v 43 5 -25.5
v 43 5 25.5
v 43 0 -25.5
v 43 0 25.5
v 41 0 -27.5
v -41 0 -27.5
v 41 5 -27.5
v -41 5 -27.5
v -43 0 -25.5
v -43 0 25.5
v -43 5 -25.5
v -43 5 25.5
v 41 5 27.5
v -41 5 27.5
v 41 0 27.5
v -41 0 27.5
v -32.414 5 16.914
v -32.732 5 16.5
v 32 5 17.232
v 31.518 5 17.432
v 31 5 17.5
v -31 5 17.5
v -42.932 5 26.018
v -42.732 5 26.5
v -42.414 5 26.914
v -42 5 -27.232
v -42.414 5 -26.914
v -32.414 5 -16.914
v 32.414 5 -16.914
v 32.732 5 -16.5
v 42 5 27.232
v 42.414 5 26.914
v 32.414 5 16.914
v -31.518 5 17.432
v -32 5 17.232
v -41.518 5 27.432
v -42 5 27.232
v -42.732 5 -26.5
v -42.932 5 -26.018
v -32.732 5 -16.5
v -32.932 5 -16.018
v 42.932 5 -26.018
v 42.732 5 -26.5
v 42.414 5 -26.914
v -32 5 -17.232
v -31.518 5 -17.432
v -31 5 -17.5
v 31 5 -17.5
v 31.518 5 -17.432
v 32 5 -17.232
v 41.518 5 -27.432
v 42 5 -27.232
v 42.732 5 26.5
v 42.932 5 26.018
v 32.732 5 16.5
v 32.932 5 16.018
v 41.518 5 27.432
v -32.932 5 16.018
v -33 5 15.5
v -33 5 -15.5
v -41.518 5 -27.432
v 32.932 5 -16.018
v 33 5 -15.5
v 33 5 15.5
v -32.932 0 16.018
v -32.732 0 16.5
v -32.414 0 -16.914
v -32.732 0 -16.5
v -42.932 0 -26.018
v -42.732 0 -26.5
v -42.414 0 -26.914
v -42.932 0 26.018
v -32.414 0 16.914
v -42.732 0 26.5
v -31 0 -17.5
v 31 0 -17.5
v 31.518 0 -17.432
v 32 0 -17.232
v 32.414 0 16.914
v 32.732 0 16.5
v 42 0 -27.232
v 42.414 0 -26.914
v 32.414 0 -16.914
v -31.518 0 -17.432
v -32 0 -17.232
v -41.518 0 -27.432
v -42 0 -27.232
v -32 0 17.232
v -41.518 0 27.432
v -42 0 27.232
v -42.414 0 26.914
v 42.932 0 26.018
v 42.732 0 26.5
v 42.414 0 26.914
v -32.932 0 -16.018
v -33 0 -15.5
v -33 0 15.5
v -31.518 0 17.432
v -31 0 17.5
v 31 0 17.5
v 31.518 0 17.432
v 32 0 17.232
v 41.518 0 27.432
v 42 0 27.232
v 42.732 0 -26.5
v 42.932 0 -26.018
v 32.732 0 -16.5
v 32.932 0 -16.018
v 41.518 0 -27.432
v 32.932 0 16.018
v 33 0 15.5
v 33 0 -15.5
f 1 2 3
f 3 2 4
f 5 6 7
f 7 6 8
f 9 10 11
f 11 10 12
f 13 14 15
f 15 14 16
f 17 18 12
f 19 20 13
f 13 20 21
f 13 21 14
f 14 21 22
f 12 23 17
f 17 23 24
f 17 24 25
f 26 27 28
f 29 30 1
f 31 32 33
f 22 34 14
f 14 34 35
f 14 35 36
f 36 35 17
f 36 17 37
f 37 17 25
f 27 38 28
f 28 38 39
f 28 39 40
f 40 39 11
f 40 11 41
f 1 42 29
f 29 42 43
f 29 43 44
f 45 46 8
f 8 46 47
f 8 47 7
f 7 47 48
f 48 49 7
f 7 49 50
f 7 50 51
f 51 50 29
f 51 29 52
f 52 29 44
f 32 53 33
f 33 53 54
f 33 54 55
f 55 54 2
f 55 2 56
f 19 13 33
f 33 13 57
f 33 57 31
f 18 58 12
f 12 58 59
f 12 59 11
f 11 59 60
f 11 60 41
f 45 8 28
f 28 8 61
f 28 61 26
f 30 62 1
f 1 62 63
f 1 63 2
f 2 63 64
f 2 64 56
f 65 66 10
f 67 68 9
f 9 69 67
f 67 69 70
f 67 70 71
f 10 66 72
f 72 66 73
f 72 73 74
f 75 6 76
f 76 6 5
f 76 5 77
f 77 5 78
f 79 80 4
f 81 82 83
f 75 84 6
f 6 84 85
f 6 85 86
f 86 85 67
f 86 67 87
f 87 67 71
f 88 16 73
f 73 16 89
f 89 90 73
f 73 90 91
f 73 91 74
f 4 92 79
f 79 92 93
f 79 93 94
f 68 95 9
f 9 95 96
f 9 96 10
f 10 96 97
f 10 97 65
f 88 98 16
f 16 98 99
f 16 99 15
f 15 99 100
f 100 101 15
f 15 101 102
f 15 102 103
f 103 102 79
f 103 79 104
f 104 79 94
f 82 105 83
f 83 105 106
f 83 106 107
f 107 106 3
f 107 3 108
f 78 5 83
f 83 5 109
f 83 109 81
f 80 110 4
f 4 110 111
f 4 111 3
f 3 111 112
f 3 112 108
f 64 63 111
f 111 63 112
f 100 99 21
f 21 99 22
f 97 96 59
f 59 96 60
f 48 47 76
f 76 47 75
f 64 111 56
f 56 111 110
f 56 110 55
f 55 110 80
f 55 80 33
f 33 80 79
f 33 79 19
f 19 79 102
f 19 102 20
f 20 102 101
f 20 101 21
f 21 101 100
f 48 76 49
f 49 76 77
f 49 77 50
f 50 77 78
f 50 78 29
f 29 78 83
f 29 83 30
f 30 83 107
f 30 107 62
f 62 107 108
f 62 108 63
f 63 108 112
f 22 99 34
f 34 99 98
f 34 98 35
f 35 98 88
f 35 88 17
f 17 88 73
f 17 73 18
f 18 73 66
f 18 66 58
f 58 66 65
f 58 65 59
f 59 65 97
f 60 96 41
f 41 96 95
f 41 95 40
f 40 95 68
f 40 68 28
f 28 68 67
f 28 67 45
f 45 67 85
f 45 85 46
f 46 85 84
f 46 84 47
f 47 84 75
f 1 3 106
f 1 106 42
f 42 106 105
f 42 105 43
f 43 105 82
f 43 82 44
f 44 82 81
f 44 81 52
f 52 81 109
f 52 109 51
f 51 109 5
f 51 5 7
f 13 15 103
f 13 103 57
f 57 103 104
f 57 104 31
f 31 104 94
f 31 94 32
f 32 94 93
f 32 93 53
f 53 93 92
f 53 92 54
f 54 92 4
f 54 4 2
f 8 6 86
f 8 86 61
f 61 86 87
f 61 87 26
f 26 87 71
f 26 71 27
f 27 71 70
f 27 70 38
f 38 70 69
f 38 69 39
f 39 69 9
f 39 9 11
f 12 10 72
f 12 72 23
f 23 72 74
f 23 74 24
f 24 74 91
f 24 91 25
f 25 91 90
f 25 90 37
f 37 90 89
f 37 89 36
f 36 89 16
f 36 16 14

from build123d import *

# Parameters (mm, degrees)
SKETCH1_W           = 86
SKETCH1_H           = 55
BOSS_EXTRUDE1_DEPTH = 5
SKETCH2_R           = 7.5
CUT_EXTRUDE1_DEPTH  = 52.285962992
SKETCH3_W           = 66
SKETCH3_H           = 35
CUT_EXTRUDE2_DEPTH  = 52.285962992
FILLET1_R           = 2


with BuildPart() as part:
    # Sketch1 → Boss-Extrude1 (new body)
    with BuildSketch(Plane(origin=(0, 0, 0), x_dir=(1, 0, 0), z_dir=(0, 1, 0))):
        Rectangle(SKETCH1_W, SKETCH1_H)
    extrude(amount=BOSS_EXTRUDE1_DEPTH)

    # Sketch2 → Cut-Extrude1 (cut, through all)
    with BuildSketch(Plane(origin=(0, 5, 0), x_dir=(1, 0, 0), z_dir=(0, 1, 0))):
        with Locations(Location((19, -2.5, 0), (0, 0, 270))):
            Circle(SKETCH2_R)
    extrude(amount=-CUT_EXTRUDE1_DEPTH, mode=Mode.SUBTRACT)

    # Sketch3 → Cut-Extrude2 (cut, through all)
    with BuildSketch(Plane(origin=(0, 5, 0), x_dir=(1, 0, 0), z_dir=(0, 1, 0))):
        Rectangle(SKETCH3_W, SKETCH3_H)
    extrude(amount=-CUT_EXTRUDE2_DEPTH, mode=Mode.SUBTRACT)

    # Fillet1
    fillet1_edges = [part.edges().sort_by_distance(p)[0] for p in [
        (33, 2.5, -17.5),
        (33, 2.5, 17.5),
        (-33, 2.5, 17.5),
        (-33, 2.5, -17.5),
        (43, 2.5, 27.5),
        (-43, 2.5, 27.5),
        (-43, 2.5, -27.5),
        (43, 2.5, -27.5),
    ]]
    fillet(fillet1_edges, radius=FILLET1_R)


solid = part.part
